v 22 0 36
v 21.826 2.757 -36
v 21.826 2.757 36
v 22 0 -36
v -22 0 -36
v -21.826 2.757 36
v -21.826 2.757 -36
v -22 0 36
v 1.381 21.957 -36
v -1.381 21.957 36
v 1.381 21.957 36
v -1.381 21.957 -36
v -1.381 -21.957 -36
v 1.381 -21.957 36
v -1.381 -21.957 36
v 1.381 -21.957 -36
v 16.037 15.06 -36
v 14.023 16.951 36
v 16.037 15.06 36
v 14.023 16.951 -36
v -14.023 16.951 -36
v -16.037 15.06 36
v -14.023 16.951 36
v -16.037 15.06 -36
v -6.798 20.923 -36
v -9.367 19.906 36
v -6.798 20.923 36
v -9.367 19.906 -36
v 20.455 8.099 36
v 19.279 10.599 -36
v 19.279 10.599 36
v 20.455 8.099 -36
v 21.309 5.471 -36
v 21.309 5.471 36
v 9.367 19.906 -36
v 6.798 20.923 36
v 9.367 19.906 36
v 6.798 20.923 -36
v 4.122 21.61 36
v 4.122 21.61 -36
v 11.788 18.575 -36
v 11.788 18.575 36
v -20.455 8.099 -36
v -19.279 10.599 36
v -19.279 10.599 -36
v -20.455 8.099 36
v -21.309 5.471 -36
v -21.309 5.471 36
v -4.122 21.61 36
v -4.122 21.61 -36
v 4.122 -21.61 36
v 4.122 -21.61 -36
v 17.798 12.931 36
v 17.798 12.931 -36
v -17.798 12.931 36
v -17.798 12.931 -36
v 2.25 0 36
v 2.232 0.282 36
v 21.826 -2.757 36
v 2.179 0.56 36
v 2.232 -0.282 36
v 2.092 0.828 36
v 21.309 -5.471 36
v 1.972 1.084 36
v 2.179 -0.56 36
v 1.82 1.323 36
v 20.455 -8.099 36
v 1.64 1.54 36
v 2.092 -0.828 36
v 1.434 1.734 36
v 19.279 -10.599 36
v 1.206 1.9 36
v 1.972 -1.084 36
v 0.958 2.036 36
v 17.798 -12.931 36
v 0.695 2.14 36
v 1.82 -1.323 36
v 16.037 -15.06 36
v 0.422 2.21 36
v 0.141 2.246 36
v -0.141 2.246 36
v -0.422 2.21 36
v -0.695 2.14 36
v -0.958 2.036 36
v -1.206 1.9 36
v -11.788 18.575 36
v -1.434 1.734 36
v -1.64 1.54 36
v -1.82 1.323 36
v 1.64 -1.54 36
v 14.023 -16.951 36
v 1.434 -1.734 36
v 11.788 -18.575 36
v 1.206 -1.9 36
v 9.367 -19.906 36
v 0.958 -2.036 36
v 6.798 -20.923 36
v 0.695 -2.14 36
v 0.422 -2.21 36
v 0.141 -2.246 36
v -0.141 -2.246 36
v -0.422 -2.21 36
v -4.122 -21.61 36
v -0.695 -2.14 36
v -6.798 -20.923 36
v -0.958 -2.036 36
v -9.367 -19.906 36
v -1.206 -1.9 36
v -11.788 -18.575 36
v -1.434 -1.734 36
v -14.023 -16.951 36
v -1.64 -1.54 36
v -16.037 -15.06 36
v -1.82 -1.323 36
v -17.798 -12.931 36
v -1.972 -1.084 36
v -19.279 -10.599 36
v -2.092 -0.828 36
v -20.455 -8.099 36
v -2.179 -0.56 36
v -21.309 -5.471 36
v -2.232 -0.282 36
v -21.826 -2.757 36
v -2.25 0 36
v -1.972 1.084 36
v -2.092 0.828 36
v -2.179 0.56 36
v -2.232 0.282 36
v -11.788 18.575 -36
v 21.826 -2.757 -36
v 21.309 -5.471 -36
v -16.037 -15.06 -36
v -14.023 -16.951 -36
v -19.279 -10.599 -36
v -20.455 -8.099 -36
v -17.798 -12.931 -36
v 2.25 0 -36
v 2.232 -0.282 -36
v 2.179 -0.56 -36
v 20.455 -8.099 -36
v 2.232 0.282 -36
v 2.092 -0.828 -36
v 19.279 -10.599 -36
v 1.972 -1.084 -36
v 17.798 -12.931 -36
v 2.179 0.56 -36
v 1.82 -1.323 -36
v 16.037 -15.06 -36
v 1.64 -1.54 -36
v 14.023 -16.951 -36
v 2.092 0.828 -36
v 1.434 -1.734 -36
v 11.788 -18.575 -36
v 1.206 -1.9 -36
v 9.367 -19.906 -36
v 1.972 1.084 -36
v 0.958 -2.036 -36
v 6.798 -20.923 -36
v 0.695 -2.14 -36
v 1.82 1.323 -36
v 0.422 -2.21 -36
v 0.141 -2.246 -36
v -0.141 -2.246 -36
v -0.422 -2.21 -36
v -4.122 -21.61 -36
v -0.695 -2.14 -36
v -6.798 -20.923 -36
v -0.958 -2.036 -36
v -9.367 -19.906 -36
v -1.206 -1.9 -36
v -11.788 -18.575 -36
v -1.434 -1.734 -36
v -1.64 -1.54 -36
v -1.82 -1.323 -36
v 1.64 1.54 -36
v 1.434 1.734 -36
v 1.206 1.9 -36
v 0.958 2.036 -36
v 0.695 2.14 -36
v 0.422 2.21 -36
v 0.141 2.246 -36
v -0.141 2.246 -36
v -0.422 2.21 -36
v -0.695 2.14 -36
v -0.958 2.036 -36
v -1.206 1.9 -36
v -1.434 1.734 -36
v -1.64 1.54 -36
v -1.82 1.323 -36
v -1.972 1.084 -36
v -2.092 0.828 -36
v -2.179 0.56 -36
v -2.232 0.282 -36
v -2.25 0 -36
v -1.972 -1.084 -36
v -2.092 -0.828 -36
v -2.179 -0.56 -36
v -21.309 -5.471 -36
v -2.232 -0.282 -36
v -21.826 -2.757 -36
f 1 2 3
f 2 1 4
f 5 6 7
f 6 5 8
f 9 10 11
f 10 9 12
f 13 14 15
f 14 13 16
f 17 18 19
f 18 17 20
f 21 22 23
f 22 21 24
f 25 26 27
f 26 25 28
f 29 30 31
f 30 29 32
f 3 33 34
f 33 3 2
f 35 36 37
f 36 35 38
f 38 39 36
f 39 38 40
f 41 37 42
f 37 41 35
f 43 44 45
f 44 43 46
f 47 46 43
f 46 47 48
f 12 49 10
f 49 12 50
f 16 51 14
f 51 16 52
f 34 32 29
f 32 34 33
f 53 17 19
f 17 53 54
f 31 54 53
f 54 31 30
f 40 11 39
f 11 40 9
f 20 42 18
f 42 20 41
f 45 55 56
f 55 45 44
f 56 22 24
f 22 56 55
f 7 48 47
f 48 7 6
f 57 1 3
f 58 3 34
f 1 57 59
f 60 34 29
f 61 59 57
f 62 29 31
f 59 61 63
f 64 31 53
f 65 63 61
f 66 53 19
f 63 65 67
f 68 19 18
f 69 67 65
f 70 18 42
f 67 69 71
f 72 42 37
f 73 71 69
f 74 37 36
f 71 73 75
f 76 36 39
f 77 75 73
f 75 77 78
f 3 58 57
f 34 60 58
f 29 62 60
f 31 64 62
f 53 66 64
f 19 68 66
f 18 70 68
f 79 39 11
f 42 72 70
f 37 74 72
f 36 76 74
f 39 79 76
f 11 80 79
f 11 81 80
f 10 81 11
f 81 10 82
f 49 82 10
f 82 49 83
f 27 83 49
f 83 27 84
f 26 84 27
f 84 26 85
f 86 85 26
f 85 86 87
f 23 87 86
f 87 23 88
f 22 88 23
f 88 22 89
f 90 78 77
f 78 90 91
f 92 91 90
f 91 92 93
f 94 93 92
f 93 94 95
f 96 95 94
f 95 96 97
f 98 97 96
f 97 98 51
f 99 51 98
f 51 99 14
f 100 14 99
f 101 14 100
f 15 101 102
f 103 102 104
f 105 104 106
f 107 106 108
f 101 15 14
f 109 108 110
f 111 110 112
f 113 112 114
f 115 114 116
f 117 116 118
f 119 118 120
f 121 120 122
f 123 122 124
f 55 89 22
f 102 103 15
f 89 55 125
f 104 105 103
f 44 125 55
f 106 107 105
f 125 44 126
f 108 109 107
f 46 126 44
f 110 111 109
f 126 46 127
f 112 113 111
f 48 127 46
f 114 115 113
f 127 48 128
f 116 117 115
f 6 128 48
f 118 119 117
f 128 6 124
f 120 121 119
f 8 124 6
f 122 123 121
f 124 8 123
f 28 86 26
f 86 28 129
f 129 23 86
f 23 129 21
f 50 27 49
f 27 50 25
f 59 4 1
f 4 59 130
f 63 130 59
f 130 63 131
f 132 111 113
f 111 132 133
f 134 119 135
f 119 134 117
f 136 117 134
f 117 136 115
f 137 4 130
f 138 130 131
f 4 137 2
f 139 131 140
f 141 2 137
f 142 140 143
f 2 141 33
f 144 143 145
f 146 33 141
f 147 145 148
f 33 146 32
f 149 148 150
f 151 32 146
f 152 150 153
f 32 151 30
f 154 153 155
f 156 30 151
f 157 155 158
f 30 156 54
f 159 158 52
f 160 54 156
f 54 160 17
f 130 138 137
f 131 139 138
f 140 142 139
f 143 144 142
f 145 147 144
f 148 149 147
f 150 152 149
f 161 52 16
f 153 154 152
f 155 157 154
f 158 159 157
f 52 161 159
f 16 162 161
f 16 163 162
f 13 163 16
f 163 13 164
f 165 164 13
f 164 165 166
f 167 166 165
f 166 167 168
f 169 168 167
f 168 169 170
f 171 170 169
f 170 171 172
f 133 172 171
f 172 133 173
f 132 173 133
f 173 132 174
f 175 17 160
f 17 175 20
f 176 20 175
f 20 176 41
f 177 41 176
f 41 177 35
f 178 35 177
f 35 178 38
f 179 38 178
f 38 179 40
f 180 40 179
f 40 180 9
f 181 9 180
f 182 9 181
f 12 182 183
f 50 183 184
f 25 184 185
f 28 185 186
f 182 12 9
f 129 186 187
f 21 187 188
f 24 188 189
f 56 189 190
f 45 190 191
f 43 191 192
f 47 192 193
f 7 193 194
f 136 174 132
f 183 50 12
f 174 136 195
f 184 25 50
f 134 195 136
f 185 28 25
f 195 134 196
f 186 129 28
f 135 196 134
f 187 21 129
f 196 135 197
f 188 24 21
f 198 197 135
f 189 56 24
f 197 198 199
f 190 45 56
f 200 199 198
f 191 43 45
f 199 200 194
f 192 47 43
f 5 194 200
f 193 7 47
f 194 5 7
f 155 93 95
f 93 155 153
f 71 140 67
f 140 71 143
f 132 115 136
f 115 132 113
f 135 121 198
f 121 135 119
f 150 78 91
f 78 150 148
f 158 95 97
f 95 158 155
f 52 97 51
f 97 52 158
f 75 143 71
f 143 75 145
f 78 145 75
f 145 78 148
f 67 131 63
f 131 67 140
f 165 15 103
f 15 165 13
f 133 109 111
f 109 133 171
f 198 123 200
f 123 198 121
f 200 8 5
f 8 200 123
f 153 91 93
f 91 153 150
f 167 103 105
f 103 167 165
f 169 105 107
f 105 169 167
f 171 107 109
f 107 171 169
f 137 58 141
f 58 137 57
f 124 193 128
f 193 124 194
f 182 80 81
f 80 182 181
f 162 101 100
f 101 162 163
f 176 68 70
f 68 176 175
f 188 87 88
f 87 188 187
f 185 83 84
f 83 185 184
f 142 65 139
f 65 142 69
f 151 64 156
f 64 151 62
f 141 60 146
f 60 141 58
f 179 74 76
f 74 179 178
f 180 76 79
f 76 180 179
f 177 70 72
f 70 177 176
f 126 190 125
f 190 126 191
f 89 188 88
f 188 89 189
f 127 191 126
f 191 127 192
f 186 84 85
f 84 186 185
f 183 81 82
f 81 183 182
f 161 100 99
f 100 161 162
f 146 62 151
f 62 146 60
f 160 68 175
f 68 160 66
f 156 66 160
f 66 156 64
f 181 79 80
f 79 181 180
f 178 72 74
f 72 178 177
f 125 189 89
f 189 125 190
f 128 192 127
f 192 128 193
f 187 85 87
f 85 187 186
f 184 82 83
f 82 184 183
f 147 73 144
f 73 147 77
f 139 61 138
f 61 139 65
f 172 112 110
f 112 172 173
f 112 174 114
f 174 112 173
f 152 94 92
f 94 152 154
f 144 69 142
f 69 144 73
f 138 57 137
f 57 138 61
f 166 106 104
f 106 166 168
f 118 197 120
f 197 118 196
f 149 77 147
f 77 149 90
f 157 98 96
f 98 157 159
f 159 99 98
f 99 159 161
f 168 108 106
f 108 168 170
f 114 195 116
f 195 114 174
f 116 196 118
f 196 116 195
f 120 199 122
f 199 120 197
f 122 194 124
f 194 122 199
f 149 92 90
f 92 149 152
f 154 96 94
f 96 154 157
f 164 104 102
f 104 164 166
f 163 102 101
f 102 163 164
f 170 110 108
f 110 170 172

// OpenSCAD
$fn = 50;


difference() {
	union() {
		translate(v = [0, 0, -36.0000000000]) {
			cylinder(h = 72, r = 22.0000000000);
		}
	}
	union() {
		translate(v = [0, 0, -100.0000000000]) {
			cylinder(h = 200, r = 2.2500000000);
		}
	}
}
